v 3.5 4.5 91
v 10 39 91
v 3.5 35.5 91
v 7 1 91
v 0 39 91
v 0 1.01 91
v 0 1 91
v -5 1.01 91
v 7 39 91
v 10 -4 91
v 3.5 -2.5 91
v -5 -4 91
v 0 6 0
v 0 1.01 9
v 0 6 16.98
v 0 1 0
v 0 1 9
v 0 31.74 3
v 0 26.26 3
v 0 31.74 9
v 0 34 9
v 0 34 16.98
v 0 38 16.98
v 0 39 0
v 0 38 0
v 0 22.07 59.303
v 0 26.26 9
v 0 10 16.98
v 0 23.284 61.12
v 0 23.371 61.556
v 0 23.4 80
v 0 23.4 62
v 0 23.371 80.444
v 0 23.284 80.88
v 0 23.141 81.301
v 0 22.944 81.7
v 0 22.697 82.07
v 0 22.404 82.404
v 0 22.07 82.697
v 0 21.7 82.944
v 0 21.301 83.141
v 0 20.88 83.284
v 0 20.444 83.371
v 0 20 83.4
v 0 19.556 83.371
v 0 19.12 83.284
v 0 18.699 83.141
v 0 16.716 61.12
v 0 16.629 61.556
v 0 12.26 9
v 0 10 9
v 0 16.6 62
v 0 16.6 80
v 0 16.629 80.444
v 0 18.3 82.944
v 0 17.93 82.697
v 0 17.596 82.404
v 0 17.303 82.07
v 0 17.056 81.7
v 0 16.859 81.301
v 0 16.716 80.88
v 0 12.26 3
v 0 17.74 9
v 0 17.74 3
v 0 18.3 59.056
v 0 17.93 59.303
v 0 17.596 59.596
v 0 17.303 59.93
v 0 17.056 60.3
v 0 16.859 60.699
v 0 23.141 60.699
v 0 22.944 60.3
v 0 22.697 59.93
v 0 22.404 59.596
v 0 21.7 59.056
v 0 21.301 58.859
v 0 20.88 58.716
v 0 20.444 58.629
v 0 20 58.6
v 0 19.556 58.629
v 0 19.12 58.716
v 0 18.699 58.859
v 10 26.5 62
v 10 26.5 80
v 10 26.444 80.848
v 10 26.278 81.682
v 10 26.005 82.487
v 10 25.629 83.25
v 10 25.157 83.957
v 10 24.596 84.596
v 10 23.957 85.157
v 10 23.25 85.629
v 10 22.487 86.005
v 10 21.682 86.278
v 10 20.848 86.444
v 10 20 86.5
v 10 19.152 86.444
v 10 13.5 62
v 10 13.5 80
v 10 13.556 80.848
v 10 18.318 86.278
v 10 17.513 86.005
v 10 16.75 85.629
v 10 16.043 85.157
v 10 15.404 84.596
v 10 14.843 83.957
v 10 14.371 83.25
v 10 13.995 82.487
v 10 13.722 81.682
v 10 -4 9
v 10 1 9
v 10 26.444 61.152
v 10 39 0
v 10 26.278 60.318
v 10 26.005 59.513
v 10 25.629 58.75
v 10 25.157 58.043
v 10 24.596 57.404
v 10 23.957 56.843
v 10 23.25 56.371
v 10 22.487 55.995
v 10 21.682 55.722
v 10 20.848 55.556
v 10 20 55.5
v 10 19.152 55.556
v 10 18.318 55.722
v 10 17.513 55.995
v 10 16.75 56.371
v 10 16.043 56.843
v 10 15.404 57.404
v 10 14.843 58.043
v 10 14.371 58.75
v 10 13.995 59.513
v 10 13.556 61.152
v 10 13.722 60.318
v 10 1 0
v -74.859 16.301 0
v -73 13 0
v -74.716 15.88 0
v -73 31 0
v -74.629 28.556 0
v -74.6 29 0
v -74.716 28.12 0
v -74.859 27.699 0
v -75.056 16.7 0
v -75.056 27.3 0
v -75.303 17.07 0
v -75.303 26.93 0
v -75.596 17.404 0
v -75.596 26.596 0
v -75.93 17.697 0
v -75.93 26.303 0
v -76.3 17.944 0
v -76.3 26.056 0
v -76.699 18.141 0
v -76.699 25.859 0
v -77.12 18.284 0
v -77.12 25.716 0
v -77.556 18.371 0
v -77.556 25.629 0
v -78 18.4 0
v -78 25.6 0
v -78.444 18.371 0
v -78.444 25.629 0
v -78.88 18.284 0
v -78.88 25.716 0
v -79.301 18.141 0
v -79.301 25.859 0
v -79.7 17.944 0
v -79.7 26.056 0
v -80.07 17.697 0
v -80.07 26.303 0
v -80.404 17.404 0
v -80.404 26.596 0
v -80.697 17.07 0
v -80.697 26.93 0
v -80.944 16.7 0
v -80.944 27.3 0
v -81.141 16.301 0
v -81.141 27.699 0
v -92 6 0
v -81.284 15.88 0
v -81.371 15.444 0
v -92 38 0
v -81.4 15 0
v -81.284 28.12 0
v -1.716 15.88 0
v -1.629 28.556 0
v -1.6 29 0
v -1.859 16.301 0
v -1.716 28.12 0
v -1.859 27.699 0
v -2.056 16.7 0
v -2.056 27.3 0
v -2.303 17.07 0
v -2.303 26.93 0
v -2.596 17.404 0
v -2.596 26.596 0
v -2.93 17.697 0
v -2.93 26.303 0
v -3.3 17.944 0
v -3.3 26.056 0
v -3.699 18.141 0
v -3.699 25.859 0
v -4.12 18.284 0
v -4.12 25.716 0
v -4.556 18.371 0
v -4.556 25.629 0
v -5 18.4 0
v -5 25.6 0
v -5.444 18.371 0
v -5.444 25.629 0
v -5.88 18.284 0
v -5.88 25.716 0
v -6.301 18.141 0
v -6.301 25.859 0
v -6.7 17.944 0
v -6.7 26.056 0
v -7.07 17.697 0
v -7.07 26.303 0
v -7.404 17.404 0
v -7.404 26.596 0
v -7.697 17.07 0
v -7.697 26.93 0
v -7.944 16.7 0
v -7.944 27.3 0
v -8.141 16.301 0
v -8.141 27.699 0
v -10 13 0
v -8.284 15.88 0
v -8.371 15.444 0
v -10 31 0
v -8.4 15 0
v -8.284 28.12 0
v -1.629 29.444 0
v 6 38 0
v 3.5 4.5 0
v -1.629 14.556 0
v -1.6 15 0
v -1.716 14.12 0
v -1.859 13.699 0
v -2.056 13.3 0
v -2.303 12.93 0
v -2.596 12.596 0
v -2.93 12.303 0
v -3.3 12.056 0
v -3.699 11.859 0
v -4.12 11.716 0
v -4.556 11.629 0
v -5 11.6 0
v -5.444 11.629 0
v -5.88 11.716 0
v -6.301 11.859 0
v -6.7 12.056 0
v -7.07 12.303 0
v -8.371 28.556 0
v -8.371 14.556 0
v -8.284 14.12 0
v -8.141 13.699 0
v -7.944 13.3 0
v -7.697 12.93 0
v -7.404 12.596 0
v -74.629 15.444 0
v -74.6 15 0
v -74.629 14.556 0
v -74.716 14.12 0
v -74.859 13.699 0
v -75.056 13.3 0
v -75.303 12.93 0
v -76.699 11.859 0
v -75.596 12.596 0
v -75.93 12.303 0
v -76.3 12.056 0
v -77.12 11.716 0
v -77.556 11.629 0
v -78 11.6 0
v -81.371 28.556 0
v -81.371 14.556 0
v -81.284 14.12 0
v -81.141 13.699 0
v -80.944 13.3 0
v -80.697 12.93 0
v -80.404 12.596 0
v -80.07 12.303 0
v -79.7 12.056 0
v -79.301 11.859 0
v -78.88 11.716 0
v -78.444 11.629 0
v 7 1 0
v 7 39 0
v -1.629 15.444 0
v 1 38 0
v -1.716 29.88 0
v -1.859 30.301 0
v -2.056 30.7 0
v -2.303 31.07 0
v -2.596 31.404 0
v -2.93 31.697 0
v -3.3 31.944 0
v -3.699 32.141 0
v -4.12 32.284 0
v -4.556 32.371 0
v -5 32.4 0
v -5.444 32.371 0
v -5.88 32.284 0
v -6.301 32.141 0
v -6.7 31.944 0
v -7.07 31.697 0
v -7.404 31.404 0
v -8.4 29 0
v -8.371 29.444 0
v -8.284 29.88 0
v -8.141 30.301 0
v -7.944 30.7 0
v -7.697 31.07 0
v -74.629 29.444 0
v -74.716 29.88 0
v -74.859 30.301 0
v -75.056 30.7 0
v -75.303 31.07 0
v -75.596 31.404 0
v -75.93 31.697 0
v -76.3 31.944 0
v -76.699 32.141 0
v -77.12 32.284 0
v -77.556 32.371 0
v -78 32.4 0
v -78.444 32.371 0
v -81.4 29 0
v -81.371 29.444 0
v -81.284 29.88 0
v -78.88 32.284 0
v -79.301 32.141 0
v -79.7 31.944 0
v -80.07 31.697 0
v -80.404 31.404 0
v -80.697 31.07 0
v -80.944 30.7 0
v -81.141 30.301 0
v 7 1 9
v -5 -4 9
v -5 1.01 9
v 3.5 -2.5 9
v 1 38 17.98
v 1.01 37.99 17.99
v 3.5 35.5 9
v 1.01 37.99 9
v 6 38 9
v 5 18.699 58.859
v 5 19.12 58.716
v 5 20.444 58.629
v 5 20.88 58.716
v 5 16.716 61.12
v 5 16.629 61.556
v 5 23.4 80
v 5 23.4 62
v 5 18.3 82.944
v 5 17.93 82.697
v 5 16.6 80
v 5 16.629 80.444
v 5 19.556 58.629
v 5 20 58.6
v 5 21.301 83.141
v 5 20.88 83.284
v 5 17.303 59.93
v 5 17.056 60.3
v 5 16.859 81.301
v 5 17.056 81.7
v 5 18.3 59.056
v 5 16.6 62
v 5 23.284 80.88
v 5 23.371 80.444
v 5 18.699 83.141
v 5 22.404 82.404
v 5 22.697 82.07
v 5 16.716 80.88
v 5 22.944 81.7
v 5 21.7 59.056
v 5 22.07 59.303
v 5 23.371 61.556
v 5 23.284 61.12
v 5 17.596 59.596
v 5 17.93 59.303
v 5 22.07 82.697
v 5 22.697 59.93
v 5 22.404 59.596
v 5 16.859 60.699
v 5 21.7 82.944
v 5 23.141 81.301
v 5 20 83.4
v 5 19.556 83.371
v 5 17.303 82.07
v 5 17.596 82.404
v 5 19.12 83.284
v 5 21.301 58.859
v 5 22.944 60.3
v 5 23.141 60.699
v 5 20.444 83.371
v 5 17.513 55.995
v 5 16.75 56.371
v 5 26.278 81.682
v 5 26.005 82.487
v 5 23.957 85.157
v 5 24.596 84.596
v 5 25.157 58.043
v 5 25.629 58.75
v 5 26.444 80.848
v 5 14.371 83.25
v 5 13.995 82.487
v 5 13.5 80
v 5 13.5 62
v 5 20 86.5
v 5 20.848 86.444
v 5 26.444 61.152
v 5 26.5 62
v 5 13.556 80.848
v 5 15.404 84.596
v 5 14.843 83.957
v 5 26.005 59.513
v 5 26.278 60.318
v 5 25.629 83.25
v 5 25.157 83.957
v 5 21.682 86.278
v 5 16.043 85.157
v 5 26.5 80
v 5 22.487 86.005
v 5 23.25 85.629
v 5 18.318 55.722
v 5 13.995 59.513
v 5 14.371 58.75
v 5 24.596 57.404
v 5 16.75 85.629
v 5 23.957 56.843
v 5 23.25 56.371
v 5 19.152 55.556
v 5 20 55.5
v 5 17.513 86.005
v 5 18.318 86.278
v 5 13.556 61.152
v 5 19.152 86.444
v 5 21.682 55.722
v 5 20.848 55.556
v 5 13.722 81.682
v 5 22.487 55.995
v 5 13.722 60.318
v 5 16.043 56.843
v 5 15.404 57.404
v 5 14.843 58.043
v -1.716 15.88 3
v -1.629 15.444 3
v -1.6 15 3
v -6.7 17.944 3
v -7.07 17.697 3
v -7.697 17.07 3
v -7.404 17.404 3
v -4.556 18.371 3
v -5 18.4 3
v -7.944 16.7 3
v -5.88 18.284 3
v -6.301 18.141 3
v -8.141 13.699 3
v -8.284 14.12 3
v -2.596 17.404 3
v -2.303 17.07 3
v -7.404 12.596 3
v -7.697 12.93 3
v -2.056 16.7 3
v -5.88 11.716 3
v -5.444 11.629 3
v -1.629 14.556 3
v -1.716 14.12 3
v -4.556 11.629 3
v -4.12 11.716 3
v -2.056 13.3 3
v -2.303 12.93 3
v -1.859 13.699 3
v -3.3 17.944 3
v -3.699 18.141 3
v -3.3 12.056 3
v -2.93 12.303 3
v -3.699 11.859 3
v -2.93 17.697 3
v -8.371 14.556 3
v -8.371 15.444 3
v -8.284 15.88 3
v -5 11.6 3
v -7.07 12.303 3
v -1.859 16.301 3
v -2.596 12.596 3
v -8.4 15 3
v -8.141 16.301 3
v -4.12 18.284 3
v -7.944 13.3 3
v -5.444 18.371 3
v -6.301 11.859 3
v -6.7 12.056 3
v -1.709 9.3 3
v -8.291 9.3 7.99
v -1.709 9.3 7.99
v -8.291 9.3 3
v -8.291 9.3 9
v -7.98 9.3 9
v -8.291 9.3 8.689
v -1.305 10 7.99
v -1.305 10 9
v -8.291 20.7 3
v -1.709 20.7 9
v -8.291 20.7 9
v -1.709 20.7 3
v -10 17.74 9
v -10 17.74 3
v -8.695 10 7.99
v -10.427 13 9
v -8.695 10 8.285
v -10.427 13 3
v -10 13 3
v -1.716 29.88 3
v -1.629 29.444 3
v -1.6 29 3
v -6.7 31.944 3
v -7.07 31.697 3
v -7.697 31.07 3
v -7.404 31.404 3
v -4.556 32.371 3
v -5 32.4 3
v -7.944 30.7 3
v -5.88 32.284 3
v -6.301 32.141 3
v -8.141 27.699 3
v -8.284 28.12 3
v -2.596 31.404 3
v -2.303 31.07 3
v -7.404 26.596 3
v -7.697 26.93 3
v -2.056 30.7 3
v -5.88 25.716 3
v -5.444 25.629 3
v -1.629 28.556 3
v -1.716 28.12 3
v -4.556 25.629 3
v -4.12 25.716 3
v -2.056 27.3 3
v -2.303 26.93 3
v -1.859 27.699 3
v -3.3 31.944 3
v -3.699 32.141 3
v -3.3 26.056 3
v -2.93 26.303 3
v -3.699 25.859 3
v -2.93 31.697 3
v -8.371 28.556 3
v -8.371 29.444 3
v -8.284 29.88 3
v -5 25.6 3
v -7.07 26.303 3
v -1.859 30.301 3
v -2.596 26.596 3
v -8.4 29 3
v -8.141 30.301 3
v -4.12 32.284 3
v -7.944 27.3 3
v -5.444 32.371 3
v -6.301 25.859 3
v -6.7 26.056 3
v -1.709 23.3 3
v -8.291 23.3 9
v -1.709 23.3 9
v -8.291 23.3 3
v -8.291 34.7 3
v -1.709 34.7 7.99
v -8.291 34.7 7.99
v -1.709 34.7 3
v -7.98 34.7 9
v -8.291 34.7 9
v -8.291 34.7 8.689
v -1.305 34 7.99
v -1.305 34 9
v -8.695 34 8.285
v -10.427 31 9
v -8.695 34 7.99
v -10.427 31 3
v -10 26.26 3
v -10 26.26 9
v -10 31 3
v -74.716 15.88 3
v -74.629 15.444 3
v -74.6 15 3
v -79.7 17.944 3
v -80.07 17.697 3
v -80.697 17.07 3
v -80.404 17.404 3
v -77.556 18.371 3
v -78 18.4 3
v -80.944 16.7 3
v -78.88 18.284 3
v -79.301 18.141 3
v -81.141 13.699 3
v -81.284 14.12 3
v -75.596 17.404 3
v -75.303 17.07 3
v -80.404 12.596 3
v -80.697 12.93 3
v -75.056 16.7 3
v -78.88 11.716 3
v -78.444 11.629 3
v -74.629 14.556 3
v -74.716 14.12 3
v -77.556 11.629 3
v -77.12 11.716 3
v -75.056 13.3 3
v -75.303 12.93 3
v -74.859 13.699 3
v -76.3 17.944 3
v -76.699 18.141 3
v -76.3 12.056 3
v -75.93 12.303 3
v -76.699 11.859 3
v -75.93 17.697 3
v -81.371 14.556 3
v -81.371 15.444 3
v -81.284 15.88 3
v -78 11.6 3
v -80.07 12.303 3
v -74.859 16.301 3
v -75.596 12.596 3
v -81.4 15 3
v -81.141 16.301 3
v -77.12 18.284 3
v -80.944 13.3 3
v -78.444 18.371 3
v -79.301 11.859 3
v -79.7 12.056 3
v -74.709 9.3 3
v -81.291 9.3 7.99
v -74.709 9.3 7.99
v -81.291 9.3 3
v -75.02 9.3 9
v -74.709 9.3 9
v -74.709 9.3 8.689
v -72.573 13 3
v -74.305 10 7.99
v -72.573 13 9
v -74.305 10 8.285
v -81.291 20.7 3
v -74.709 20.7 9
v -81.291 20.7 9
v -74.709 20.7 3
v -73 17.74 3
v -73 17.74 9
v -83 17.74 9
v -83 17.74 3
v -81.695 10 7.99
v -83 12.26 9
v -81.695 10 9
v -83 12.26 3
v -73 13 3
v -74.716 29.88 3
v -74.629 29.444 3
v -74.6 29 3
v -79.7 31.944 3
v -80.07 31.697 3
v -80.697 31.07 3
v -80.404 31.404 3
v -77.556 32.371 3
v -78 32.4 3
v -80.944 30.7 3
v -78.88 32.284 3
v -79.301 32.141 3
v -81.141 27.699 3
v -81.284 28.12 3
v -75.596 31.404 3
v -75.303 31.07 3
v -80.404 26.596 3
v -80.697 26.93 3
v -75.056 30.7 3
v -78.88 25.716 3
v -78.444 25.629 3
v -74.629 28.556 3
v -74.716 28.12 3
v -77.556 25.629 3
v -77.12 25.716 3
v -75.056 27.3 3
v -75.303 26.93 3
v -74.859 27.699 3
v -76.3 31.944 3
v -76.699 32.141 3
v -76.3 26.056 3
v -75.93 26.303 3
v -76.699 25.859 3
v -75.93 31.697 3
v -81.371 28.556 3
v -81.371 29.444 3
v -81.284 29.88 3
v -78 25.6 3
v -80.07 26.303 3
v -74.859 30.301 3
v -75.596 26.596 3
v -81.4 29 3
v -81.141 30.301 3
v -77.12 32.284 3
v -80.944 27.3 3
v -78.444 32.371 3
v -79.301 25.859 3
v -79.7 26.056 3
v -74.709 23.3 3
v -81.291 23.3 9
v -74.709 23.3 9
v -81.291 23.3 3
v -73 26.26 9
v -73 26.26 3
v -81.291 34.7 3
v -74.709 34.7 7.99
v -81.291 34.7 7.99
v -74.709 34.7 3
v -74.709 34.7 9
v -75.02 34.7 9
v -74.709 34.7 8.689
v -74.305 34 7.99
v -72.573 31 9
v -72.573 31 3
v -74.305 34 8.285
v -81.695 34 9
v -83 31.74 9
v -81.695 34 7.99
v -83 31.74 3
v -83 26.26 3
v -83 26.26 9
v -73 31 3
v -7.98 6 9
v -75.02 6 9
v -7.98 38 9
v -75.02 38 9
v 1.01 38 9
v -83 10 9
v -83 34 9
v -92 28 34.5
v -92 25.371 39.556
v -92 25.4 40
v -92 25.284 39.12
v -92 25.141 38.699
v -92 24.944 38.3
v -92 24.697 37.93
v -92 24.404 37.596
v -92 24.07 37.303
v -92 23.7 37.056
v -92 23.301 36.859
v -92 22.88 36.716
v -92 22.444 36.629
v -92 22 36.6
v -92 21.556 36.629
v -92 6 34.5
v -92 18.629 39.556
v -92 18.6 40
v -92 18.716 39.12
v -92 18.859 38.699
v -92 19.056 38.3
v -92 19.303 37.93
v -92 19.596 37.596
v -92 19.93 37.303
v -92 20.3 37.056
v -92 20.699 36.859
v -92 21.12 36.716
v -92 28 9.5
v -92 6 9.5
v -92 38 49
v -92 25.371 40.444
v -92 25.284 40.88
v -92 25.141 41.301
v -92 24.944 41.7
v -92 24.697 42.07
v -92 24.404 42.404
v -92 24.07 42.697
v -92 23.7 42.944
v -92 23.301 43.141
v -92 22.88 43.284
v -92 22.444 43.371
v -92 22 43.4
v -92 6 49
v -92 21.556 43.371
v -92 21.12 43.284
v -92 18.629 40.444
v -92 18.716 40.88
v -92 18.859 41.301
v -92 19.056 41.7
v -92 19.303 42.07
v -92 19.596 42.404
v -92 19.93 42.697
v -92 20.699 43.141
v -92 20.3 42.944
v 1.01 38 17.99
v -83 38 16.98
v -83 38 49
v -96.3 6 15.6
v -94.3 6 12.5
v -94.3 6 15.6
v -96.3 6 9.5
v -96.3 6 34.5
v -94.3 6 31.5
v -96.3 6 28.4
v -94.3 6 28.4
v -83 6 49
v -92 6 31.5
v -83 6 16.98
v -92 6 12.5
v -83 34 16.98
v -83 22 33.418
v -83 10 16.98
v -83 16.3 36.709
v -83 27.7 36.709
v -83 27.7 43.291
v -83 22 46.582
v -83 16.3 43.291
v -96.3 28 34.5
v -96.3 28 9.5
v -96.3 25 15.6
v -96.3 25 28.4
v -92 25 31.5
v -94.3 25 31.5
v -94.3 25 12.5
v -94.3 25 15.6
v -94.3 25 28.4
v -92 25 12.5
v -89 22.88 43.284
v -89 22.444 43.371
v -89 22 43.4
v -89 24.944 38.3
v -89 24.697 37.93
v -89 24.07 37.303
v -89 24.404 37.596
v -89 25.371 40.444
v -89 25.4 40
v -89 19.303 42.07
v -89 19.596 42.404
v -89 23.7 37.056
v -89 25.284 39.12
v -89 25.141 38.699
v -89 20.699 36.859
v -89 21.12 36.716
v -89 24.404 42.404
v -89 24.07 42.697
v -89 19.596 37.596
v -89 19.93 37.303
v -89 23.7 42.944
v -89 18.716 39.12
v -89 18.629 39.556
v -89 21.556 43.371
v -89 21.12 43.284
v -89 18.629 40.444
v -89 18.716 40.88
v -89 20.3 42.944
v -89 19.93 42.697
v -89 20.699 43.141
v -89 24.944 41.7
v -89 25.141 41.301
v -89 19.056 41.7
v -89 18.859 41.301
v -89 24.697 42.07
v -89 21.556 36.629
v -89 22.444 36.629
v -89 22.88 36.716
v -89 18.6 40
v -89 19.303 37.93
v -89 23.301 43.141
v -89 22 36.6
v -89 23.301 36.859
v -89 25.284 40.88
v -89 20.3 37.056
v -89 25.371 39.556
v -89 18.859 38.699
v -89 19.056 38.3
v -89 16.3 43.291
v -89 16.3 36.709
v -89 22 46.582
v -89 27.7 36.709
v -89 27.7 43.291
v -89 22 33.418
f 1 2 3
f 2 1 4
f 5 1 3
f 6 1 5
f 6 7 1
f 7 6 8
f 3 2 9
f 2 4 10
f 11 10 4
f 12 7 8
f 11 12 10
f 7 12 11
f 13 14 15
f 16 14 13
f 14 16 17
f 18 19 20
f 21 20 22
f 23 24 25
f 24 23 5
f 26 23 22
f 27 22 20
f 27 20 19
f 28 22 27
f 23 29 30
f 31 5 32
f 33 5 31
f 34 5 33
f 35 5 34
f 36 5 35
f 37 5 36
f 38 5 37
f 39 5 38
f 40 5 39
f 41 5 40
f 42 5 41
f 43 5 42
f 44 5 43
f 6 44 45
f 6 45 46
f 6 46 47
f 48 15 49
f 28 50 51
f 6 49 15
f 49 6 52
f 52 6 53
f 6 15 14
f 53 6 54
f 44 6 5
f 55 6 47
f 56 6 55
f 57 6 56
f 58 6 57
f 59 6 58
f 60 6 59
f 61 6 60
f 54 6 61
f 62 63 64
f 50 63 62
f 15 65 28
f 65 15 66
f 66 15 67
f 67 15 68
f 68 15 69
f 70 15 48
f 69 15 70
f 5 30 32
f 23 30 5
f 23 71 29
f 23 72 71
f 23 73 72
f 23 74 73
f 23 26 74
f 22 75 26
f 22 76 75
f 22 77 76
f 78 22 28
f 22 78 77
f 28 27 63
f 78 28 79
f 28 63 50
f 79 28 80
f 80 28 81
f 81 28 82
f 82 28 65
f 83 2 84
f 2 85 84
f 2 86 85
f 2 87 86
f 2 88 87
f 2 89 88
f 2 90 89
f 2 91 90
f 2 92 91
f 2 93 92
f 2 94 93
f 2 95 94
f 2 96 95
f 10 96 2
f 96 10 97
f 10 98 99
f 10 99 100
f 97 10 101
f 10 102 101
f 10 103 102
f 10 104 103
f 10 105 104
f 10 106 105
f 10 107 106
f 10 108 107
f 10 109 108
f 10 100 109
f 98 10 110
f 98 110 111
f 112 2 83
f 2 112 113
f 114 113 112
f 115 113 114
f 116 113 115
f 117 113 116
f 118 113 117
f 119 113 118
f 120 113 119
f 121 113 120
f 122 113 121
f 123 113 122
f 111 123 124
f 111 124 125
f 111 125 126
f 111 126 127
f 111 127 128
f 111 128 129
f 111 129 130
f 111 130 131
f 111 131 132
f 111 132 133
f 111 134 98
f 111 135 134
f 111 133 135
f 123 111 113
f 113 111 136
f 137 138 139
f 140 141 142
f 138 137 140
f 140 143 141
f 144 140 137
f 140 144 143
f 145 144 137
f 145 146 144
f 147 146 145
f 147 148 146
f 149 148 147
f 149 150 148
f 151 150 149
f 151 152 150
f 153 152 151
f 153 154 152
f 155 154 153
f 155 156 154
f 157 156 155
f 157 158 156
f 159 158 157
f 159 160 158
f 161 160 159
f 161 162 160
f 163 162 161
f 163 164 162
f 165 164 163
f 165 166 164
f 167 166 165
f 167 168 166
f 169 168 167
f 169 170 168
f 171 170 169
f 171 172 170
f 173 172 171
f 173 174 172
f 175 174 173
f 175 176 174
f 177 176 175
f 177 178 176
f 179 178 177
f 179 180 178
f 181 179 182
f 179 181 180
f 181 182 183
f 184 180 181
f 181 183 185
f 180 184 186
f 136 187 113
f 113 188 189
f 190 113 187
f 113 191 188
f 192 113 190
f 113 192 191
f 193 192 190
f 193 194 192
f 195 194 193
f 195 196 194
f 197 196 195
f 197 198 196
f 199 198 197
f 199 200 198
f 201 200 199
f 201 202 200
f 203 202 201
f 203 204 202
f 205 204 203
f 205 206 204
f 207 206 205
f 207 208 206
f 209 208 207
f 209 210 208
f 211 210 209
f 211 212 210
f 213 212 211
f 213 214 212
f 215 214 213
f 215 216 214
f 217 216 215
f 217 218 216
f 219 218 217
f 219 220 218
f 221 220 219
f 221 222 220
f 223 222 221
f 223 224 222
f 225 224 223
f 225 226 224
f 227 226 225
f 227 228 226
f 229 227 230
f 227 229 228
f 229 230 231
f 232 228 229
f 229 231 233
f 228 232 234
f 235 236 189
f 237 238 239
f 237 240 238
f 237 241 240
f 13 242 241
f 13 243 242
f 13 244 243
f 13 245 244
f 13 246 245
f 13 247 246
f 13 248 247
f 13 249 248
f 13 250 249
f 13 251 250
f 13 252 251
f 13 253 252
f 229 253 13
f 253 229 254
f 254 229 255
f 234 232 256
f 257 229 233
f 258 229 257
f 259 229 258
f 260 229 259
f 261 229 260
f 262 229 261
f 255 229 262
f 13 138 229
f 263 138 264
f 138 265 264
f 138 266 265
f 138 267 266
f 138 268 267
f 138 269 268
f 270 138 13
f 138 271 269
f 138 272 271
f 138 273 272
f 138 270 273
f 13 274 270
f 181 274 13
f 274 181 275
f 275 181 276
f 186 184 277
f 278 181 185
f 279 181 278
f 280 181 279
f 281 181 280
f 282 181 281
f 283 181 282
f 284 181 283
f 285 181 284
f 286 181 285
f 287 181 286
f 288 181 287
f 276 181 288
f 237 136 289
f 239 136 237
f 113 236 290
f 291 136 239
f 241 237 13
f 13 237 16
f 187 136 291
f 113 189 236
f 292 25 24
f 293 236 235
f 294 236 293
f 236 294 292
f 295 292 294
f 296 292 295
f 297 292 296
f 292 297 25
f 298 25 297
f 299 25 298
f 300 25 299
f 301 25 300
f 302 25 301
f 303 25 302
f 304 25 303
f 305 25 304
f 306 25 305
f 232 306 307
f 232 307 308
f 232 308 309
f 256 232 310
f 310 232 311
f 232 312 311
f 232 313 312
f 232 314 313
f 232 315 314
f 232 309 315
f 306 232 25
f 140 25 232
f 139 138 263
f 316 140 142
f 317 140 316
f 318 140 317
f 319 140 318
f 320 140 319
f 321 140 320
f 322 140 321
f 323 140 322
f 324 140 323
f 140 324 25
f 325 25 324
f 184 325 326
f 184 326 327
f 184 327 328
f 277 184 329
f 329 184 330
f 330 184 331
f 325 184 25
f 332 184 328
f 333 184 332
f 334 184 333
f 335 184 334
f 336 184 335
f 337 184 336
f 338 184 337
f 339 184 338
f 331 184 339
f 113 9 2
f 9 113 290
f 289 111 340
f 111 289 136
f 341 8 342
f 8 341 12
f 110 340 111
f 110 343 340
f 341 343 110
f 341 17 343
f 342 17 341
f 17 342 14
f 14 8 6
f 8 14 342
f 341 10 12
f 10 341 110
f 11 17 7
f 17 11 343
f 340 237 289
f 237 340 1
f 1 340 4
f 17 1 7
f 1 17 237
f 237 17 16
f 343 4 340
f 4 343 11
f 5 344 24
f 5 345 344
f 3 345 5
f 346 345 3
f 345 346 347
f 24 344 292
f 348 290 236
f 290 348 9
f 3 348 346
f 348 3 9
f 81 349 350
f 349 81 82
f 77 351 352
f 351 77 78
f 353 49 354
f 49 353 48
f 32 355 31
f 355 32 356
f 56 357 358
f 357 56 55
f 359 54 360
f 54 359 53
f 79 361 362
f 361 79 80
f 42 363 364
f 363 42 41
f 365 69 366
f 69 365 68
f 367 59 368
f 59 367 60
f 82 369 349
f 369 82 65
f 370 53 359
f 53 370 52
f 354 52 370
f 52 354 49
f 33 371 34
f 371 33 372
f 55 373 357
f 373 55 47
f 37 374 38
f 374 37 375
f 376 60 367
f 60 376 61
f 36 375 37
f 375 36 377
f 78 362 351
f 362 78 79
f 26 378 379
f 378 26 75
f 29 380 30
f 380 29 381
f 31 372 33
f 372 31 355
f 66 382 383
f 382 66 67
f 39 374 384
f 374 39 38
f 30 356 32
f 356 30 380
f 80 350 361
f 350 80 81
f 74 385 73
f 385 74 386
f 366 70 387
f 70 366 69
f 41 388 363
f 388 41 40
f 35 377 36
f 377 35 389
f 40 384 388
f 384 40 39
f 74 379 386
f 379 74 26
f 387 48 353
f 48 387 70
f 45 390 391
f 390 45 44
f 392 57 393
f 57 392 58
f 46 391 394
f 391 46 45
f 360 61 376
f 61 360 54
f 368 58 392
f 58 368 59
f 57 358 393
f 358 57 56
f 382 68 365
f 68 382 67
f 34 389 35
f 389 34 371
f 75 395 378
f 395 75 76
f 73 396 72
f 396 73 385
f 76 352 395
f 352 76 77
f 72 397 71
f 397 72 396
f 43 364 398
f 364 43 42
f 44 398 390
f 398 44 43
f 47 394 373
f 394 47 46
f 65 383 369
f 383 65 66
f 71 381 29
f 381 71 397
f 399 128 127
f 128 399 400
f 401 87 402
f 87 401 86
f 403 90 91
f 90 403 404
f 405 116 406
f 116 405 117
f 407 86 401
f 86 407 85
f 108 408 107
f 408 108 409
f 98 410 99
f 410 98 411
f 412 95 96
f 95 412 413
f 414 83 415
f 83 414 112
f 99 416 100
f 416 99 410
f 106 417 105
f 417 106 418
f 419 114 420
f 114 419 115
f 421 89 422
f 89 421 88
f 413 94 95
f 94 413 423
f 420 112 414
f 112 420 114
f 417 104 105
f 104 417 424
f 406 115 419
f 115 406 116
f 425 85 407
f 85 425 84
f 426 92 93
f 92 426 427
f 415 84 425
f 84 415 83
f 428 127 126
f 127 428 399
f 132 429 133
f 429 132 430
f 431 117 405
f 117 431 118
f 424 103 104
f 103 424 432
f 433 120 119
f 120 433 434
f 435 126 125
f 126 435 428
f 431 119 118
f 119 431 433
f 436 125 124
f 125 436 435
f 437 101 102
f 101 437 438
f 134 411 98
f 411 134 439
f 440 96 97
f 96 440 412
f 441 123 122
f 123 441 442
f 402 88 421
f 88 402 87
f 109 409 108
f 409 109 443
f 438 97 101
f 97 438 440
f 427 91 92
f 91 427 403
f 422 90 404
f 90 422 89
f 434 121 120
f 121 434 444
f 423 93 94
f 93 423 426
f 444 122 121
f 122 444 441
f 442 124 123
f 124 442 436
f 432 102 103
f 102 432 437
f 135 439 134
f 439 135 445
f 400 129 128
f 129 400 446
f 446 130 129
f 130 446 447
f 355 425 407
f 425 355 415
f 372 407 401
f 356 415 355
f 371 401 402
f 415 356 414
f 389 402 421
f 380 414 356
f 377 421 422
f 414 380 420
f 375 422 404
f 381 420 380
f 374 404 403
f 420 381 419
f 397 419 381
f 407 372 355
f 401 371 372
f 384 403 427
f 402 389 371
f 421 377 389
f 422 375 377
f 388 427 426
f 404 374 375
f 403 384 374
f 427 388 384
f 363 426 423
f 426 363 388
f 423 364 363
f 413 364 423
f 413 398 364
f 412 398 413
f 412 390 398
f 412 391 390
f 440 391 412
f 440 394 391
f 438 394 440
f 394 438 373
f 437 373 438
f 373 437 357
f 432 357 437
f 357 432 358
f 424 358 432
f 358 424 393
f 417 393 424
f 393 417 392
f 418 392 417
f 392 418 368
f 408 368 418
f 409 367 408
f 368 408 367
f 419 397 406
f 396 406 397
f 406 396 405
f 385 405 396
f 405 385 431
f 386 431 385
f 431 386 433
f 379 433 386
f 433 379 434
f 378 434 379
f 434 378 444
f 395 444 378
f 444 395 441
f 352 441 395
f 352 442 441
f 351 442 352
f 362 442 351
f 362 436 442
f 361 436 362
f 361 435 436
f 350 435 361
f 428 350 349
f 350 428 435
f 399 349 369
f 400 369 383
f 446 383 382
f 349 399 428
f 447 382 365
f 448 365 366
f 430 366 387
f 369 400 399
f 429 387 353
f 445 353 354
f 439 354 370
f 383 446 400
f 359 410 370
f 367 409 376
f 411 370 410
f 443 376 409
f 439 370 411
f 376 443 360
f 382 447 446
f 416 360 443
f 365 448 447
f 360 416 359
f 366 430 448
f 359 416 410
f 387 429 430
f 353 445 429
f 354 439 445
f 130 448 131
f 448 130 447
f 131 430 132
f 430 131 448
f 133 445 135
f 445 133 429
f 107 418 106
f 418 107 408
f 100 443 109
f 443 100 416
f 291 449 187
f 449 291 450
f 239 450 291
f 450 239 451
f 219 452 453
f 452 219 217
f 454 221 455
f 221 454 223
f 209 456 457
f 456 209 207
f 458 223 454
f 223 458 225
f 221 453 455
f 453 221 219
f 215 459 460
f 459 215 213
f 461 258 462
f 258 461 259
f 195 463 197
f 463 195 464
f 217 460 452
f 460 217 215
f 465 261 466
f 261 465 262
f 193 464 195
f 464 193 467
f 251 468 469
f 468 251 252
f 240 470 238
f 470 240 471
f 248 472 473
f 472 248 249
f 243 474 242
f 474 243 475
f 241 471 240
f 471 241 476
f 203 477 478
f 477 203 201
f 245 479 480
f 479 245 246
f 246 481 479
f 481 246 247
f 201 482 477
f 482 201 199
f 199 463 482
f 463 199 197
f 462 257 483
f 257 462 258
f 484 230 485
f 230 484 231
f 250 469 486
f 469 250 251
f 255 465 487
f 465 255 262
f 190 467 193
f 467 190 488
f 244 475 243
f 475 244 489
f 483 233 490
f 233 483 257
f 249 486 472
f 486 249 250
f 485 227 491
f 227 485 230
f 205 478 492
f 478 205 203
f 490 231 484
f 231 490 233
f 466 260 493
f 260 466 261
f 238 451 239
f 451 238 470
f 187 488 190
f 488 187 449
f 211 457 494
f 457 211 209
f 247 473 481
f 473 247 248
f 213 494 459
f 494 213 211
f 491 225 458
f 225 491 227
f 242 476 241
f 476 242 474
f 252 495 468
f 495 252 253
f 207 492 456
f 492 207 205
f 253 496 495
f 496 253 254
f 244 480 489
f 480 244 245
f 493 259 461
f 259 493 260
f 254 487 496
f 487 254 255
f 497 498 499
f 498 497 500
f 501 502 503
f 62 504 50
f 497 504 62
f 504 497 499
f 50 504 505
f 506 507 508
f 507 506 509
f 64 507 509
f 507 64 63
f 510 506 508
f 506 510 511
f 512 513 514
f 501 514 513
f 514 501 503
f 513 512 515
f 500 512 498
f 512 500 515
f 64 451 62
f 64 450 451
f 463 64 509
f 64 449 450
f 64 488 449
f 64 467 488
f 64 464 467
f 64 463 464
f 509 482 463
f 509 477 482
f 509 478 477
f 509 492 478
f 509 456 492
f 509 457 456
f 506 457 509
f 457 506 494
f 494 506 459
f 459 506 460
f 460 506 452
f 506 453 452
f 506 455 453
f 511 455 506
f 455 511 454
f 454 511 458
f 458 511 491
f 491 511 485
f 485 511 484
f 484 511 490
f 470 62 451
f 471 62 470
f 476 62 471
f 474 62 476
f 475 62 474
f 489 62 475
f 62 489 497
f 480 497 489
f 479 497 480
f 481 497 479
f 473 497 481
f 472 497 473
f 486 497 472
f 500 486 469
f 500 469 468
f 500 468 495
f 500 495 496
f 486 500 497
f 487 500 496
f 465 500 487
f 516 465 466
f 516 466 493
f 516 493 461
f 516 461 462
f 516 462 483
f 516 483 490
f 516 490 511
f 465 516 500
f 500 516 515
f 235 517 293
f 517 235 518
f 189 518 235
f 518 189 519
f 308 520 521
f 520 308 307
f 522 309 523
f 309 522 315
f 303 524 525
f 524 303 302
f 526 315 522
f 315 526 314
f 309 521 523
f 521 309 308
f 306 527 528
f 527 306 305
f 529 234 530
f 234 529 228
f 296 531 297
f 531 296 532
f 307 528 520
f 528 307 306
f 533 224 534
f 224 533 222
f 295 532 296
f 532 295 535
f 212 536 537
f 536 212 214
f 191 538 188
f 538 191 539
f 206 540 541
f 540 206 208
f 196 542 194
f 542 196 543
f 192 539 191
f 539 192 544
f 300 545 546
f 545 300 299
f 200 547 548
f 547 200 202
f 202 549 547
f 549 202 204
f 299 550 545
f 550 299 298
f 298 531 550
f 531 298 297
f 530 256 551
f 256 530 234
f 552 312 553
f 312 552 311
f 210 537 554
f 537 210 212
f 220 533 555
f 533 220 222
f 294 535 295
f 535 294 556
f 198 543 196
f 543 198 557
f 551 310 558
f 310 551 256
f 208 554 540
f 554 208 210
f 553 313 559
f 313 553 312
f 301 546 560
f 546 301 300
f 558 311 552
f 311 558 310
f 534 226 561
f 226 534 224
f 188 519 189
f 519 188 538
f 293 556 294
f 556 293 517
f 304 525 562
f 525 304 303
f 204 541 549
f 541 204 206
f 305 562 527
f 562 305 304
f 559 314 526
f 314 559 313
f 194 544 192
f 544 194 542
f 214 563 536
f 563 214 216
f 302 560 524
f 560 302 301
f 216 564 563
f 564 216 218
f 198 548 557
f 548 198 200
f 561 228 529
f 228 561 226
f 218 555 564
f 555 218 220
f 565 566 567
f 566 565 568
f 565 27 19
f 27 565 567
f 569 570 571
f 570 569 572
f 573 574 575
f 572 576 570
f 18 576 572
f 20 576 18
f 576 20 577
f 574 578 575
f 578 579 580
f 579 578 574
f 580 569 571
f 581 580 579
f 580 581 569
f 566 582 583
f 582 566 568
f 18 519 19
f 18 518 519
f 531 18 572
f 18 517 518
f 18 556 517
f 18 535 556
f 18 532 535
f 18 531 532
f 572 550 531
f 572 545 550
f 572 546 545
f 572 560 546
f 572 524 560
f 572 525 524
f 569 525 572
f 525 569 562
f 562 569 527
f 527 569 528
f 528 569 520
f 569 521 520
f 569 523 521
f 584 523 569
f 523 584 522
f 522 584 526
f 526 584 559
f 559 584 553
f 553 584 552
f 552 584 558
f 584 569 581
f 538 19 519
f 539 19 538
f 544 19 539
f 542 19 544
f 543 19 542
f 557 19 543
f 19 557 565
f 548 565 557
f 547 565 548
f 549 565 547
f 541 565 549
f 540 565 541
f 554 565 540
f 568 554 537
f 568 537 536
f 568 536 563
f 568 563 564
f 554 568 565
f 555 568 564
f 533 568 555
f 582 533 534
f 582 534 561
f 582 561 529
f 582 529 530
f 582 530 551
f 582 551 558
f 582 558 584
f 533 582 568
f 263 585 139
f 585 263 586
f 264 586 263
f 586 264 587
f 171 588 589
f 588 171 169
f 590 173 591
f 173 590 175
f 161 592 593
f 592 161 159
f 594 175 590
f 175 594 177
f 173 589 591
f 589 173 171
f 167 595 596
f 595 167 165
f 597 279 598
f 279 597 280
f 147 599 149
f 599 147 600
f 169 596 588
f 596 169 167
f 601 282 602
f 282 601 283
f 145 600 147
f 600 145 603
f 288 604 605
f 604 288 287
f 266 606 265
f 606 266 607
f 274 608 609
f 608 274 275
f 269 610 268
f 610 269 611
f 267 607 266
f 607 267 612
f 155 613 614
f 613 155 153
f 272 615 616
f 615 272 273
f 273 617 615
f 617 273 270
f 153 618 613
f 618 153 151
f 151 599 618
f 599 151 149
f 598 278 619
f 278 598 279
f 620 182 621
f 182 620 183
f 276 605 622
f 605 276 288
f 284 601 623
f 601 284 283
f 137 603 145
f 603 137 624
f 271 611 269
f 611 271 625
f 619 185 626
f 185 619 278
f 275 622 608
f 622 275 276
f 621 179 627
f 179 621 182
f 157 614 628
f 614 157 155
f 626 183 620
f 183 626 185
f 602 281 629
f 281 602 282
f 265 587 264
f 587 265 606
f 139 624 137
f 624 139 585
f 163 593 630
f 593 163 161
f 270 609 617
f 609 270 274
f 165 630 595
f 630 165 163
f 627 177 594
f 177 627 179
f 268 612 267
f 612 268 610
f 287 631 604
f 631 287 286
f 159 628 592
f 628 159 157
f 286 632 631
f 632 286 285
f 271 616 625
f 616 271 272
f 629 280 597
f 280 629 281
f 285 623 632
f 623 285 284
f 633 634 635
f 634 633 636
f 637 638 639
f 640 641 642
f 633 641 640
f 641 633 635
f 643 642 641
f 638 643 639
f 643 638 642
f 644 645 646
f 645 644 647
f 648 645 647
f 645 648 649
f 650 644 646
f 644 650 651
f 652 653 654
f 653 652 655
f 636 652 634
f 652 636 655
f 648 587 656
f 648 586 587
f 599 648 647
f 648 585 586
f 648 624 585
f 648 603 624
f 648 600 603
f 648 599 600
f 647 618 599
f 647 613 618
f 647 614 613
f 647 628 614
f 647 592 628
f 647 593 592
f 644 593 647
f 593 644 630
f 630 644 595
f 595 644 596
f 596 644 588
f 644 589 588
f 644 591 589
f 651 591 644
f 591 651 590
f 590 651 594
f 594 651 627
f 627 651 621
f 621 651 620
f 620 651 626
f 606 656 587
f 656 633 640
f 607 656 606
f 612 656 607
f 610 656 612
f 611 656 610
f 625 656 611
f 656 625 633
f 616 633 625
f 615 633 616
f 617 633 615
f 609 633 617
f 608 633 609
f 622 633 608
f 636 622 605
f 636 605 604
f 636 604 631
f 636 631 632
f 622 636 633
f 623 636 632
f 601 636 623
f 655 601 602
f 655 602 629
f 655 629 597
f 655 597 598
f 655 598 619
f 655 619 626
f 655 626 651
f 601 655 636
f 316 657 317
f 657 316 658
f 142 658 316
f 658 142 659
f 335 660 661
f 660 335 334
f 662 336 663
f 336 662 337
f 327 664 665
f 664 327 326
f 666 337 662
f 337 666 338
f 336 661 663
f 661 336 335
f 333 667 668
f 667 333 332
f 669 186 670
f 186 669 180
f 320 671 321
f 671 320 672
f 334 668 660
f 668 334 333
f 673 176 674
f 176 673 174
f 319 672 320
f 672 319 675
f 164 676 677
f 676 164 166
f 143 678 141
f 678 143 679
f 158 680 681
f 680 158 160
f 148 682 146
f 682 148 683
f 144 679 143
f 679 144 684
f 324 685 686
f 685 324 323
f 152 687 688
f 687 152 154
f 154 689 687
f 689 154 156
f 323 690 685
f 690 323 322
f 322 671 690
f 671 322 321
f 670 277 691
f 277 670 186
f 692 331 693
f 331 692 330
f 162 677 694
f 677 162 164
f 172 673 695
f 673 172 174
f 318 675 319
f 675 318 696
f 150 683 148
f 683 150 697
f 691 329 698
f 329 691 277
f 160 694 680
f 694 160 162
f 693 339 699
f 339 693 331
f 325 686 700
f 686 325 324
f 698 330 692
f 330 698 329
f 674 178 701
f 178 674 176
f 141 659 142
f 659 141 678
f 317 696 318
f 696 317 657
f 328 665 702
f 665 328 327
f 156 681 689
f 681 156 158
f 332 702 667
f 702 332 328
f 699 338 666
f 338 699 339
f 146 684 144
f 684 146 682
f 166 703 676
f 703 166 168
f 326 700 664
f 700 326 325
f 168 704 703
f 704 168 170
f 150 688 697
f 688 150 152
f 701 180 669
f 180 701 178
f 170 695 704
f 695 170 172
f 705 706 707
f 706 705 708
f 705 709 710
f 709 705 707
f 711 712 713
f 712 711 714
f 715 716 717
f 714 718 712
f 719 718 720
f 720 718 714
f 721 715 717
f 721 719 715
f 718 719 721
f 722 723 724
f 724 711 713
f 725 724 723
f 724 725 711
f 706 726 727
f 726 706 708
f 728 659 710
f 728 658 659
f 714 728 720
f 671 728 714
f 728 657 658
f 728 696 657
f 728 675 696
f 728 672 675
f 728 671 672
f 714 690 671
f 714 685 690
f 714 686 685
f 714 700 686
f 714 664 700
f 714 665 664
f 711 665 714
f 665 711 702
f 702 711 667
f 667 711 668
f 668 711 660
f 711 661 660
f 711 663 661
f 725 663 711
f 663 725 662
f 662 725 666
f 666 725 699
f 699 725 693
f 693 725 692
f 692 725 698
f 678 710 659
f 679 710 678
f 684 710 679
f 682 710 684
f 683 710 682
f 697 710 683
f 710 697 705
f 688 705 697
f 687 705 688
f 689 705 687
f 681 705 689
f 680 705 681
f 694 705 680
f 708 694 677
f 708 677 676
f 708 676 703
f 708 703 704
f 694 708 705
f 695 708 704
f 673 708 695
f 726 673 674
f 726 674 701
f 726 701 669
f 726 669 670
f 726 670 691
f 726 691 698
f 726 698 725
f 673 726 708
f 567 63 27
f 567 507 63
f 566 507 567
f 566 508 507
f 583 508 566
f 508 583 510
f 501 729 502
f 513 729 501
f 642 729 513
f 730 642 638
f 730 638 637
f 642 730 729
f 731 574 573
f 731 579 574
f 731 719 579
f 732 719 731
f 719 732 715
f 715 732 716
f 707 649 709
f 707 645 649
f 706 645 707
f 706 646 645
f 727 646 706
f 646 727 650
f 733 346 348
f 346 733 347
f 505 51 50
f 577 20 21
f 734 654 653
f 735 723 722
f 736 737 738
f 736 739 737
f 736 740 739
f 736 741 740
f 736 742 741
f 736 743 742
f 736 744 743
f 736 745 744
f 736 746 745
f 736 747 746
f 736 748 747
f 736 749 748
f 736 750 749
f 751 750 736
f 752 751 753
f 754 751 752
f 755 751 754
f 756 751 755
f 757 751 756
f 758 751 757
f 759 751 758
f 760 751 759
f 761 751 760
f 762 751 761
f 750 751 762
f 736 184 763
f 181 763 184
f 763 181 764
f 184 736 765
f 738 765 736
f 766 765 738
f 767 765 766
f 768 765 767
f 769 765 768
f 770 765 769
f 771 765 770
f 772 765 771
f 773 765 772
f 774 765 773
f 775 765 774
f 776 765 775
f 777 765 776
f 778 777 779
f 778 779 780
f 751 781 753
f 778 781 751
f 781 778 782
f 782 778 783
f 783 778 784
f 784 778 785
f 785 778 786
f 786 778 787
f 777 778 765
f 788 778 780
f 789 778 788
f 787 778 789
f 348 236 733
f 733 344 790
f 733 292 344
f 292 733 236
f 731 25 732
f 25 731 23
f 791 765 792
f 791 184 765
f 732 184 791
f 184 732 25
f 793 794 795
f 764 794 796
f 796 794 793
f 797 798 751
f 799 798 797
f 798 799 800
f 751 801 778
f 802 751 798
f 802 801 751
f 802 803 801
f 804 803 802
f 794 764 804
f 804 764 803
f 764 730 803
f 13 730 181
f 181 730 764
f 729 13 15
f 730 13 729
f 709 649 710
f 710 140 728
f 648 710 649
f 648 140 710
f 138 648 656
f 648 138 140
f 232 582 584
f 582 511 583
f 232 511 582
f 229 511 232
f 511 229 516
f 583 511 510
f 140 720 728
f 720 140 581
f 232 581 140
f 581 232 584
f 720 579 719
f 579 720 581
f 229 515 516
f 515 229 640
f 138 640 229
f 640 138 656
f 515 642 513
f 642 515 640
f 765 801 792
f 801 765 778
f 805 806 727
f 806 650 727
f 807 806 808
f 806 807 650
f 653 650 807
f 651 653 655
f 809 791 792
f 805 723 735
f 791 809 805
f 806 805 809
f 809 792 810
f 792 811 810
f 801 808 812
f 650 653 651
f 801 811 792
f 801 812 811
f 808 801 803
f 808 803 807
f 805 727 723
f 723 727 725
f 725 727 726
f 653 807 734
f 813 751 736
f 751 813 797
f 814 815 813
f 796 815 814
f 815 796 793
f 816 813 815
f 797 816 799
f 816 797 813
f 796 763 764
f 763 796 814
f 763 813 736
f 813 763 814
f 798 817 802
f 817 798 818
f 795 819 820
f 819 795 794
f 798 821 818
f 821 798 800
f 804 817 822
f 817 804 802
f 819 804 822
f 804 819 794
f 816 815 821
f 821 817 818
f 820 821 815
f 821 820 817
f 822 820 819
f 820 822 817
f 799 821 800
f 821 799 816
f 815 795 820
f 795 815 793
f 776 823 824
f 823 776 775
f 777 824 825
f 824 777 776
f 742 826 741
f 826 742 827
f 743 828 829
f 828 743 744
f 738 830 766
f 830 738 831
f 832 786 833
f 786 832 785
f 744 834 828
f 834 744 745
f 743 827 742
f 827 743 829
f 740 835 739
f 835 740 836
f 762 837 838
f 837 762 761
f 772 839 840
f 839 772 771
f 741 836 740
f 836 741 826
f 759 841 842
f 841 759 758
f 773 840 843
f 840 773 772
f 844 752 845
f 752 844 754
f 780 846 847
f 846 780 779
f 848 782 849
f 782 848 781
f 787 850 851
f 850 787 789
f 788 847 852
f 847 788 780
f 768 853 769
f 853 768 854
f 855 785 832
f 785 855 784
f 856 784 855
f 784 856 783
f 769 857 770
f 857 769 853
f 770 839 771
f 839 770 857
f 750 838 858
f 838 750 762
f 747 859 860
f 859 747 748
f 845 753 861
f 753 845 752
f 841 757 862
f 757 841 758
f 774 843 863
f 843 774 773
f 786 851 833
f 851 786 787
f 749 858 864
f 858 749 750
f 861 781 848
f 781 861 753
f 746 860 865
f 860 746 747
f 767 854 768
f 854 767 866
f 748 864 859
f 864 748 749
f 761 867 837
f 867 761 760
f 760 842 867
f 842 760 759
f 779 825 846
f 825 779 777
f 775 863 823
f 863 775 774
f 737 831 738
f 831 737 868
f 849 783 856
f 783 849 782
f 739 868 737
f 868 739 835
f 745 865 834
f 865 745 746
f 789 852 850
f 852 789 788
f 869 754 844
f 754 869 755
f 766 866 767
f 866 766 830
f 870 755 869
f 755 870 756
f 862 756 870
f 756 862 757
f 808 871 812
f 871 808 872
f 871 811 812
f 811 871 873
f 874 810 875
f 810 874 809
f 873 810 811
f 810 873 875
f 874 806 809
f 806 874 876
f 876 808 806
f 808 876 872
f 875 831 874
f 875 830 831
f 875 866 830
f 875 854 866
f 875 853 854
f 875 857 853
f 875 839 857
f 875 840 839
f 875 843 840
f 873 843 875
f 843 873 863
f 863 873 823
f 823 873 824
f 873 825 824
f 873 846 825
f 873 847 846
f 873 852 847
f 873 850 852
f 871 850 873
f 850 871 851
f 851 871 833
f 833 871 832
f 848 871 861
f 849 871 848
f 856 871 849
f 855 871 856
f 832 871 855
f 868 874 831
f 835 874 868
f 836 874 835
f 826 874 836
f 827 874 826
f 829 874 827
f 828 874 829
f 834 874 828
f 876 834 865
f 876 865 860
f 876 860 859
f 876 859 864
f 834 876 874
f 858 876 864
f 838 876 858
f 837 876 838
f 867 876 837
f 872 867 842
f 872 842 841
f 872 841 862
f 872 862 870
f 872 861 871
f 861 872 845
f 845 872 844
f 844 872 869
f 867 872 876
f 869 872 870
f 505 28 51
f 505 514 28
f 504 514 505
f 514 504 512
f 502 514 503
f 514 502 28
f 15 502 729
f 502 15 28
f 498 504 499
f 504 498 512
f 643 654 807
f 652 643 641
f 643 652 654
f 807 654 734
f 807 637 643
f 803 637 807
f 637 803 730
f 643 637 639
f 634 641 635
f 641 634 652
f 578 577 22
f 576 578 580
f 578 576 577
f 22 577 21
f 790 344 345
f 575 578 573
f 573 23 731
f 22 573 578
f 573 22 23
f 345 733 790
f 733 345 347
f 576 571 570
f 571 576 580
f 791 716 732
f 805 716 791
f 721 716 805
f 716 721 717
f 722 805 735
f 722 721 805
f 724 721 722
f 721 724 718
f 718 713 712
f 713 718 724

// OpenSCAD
// =====================================================================
//  Fujifilm X-H2 / X-H2S  — 3D-printable half cage  (v1, parametric)
// ---------------------------------------------------------------------
//  Base plate (Arca-Swiss grooves + anti-twist lip) + left side upright
//  (port window, 1/4"-20 nut traps) + short top arm with cold shoe.
//  Open on the grip side so the camera slides in from the right.
//
//  Coordinates (camera seen from BEHIND, as you shoot):
//    X = 0 at camera's LEFT side (port side), +X toward the grip
//    Y = 0 at camera's REAR face (bottom edge), +Y toward the lens
//    Z = 0 at camera's BOTTOM, +Z up
//
//  !!! Values marked MEASURE are estimates. Measure your camera with
//  !!! calipers and update them before printing the final version.
//
//  Print: lay the part on its OUTER left face (the default STL is already
//  rotated for this) -> no supports needed. PETG/ASA, 4-5 walls, 40%+ infill.
// =====================================================================

part = "print";        // "print" = rotated for printing, "assembly" = in place with ghost camera

// ---------- camera (MEASURE) ----------
cam_w        = 136.3;  // overall width incl. grip (spec)
cam_h        = 92.9;   // overall height (spec, EVF hump)
cam_d        = 48;     // MEASURE: body depth at the bottom, rear face -> front face (no grip)
left_shoulder_h = 80;  // MEASURE: height of the LEFT top shoulder (mode-dial side)
socket_x     = 52;     // MEASURE: tripod socket centre, from camera's left side
socket_y     = 20;     // MEASURE: tripod socket centre, from camera's rear face

// ---------- fit / layout ----------
side_gap     = 10;     // air gap between camera left side and upright (strap lug, port doors)
top_gap      = 3;      // clearance between left shoulder and top arm
base_t       = 10;     // base plate thickness
base_end_x   = socket_x + 20;  // where the base stops toward the grip (keep battery door free!)
lip_h        = 5;      // anti-twist lip height (keep low so the rear screen can tilt)
lip_t        = 4;

wall         = 9;      // upright thickness
up_y0        = 6;      // upright starts this far in front of rear face (vari-angle screen clearance)
up_y1        = 38;     // upright ends here (Y)
top_t        = 9;      // top arm thickness
top_len      = 40;     // how far the top arm reaches over the camera (from inside of upright)

// ---------- hardware ----------
q_clear      = 6.8;    // 1/4"-20 clearance hole
q_nut_af     = 11.4;   // 1/4"-20 hex nut across flats (7/16" = 11.11 + tolerance)
q_nut_t      = 6.0;    // nut pocket depth (nut is 5.56)
screw_cb_d   = 13;     // counterbore for camera screw head (from below)
screw_cb_h   = 5;      // counterbore depth
slot_len     = 18;     // camera screw slot length (along X) for adjustment

arca_w       = 38;     // Arca-Swiss plate width
arca_groove  = 3.5;    // groove depth each side (45 deg)

// cold shoe receiver (sliding from the rear)
shoe_w       = 19.0;   // inner slot width  (shoe foot is 18.6)
shoe_slot_h  = 2.3;    // slot height       (foot is ~2.0)
shoe_open    = 12.8;   // top opening       (neck ~12.5)
shoe_len     = 22;

$fn = 48;
eps = 0.01;

ux0 = -side_gap - wall;   // upright outer face
ux1 = -side_gap;          // upright inner face
top_z0 = left_shoulder_h + top_gap;
top_z1 = top_z0 + top_t;

// ---------------------------------------------------------------------
module hex_pocket(af, h) { cylinder(d = af / cos(30), h = h, $fn = 6); }

module base() {
    by0 = socket_y - arca_w/2;
    difference() {
        union() {
            translate([ux0, by0, -base_t]) cube([base_end_x - ux0, arca_w, base_t]);
            // rear anti-twist lip, extends the base back to the camera's rear face
            translate([ux1, -lip_t, -base_t]) cube([base_end_x - ux1, lip_t + by0 + eps, base_t + lip_h]);
        }
        // Arca grooves along X on front & back edges (45 deg V)
        for (s = [0, 1]) {
            yy = s == 0 ? by0 : by0 + arca_w;
            // diamond centred on the edge -> 45 deg V-groove, depth = arca_groove
            translate([(ux0 + base_end_x)/2, yy, -base_t + 3 + arca_groove])
                rotate([45, 0, 0])
                    cube([base_end_x - ux0 + 2, arca_groove * sqrt(2), arca_groove * sqrt(2)], center = true);
        }
        // camera screw slot + counterbore
        hull() for (dx = [-slot_len/2, slot_len/2])
            translate([socket_x + dx, socket_y, -base_t - 1]) cylinder(d = q_clear, h = base_t + 2);
        hull() for (dx = [-slot_len/2, slot_len/2])
            translate([socket_x + dx, socket_y, -base_t - 1]) cylinder(d = screw_cb_d, h = screw_cb_h + 1);
    }
}

module upright() {
    h = top_z1 + base_t;
    win_z0 = 10; win_z1 = top_z0 - 10;
    difference() {
        translate([ux0, up_y0, -base_t]) cube([wall, up_y1 - up_y0, h]);
        // port window (HDMI / USB-C / mic / headphone doors)
        translate([ux0 - 1, up_y0 + 7, win_z0]) cube([wall + 2, (up_y1 - up_y0) - 14, win_z1 - win_z0]);
        // 1/4"-20 holes with nut traps from the inside, two columns
        for (z = [win_z0 - 5 + 0, win_z1 + 5], y = [up_y0 + 9, up_y1 - 9])
            translate([ux0 - 1, y, z]) rotate([0, 90, 0]) {
                cylinder(d = q_clear, h = wall + 2);
                translate([0, 0, wall + 1 - q_nut_t]) hex_pocket(q_nut_af, q_nut_t + 1);
            }
    }
}

module top_arm() {
    difference() {
        union() {
            translate([ux0, up_y0, top_z0]) cube([wall + top_len, up_y1 - up_y0, top_t]);
            cold_shoe_body();
        }
        cold_shoe_cut();
        // 1/4"-20 hole in top arm, nut trap from below
        translate([ux1 + top_len - 9, (up_y0 + up_y1)/2, top_z0 - 1]) {
            cylinder(d = q_clear, h = top_t + 2);
            hex_pocket(q_nut_af, q_nut_t + 1);
        }
    }
}

shoe_cx = ux1 + 13;                 // cold shoe centre X
module cold_shoe_body() {
    translate([shoe_cx - (shoe_w + 6)/2, up_y0, top_z1 - 1])
        cube([shoe_w + 6, shoe_len, shoe_slot_h + 3]);
}
module cold_shoe_cut() {
    // slot (open at rear, y = up_y0)
    translate([shoe_cx - shoe_w/2, up_y0 - 1, top_z1]) cube([shoe_w, shoe_len - 3 + 1, shoe_slot_h]);
    translate([shoe_cx - shoe_open/2, up_y0 - 1, top_z1]) cube([shoe_open, shoe_len - 3 + 1, shoe_slot_h + 3]);
}

// inner-corner gussets (stay inside the side gap, so they never touch the camera)
module gussets() {
    g = side_gap - 1;
    for (y = [up_y0, up_y1 - 4]) {
        // base <-> upright
        translate([ux1 - eps, y, 0 - eps]) rotate([90, 0, 0]) translate([0, 0, -4])
            linear_extrude(4) polygon([[-1, -1], [g, -1], [-1, g]]);
        // top arm <-> upright
        translate([ux1 - eps, y, top_z0 + eps]) rotate([90, 0, 0]) translate([0, 0, -4])
            linear_extrude(4) polygon([[-1, 1], [g, 1], [-1, -g]]);
    }
}

module cage() { union() { base(); upright(); top_arm(); gussets(); } }

module ghost_camera() {
    %translate([0, 0, 0]) cube([cam_w, cam_d, left_shoulder_h]);
    %translate([30, 0, 0]) cube([45, cam_d - 10, cam_h]);          // EVF hump (rough)
    %translate([socket_x, cam_d, 35]) rotate([-90, 0, 0]) cylinder(d = 60, h = 50); // lens
}

if (part == "assembly") { cage(); ghost_camera(); }
else if (part == "cage") cage();
else rotate([0, -90, 0]) translate([-ux0, 0, 0]) cage();   // outer left face down on bed
